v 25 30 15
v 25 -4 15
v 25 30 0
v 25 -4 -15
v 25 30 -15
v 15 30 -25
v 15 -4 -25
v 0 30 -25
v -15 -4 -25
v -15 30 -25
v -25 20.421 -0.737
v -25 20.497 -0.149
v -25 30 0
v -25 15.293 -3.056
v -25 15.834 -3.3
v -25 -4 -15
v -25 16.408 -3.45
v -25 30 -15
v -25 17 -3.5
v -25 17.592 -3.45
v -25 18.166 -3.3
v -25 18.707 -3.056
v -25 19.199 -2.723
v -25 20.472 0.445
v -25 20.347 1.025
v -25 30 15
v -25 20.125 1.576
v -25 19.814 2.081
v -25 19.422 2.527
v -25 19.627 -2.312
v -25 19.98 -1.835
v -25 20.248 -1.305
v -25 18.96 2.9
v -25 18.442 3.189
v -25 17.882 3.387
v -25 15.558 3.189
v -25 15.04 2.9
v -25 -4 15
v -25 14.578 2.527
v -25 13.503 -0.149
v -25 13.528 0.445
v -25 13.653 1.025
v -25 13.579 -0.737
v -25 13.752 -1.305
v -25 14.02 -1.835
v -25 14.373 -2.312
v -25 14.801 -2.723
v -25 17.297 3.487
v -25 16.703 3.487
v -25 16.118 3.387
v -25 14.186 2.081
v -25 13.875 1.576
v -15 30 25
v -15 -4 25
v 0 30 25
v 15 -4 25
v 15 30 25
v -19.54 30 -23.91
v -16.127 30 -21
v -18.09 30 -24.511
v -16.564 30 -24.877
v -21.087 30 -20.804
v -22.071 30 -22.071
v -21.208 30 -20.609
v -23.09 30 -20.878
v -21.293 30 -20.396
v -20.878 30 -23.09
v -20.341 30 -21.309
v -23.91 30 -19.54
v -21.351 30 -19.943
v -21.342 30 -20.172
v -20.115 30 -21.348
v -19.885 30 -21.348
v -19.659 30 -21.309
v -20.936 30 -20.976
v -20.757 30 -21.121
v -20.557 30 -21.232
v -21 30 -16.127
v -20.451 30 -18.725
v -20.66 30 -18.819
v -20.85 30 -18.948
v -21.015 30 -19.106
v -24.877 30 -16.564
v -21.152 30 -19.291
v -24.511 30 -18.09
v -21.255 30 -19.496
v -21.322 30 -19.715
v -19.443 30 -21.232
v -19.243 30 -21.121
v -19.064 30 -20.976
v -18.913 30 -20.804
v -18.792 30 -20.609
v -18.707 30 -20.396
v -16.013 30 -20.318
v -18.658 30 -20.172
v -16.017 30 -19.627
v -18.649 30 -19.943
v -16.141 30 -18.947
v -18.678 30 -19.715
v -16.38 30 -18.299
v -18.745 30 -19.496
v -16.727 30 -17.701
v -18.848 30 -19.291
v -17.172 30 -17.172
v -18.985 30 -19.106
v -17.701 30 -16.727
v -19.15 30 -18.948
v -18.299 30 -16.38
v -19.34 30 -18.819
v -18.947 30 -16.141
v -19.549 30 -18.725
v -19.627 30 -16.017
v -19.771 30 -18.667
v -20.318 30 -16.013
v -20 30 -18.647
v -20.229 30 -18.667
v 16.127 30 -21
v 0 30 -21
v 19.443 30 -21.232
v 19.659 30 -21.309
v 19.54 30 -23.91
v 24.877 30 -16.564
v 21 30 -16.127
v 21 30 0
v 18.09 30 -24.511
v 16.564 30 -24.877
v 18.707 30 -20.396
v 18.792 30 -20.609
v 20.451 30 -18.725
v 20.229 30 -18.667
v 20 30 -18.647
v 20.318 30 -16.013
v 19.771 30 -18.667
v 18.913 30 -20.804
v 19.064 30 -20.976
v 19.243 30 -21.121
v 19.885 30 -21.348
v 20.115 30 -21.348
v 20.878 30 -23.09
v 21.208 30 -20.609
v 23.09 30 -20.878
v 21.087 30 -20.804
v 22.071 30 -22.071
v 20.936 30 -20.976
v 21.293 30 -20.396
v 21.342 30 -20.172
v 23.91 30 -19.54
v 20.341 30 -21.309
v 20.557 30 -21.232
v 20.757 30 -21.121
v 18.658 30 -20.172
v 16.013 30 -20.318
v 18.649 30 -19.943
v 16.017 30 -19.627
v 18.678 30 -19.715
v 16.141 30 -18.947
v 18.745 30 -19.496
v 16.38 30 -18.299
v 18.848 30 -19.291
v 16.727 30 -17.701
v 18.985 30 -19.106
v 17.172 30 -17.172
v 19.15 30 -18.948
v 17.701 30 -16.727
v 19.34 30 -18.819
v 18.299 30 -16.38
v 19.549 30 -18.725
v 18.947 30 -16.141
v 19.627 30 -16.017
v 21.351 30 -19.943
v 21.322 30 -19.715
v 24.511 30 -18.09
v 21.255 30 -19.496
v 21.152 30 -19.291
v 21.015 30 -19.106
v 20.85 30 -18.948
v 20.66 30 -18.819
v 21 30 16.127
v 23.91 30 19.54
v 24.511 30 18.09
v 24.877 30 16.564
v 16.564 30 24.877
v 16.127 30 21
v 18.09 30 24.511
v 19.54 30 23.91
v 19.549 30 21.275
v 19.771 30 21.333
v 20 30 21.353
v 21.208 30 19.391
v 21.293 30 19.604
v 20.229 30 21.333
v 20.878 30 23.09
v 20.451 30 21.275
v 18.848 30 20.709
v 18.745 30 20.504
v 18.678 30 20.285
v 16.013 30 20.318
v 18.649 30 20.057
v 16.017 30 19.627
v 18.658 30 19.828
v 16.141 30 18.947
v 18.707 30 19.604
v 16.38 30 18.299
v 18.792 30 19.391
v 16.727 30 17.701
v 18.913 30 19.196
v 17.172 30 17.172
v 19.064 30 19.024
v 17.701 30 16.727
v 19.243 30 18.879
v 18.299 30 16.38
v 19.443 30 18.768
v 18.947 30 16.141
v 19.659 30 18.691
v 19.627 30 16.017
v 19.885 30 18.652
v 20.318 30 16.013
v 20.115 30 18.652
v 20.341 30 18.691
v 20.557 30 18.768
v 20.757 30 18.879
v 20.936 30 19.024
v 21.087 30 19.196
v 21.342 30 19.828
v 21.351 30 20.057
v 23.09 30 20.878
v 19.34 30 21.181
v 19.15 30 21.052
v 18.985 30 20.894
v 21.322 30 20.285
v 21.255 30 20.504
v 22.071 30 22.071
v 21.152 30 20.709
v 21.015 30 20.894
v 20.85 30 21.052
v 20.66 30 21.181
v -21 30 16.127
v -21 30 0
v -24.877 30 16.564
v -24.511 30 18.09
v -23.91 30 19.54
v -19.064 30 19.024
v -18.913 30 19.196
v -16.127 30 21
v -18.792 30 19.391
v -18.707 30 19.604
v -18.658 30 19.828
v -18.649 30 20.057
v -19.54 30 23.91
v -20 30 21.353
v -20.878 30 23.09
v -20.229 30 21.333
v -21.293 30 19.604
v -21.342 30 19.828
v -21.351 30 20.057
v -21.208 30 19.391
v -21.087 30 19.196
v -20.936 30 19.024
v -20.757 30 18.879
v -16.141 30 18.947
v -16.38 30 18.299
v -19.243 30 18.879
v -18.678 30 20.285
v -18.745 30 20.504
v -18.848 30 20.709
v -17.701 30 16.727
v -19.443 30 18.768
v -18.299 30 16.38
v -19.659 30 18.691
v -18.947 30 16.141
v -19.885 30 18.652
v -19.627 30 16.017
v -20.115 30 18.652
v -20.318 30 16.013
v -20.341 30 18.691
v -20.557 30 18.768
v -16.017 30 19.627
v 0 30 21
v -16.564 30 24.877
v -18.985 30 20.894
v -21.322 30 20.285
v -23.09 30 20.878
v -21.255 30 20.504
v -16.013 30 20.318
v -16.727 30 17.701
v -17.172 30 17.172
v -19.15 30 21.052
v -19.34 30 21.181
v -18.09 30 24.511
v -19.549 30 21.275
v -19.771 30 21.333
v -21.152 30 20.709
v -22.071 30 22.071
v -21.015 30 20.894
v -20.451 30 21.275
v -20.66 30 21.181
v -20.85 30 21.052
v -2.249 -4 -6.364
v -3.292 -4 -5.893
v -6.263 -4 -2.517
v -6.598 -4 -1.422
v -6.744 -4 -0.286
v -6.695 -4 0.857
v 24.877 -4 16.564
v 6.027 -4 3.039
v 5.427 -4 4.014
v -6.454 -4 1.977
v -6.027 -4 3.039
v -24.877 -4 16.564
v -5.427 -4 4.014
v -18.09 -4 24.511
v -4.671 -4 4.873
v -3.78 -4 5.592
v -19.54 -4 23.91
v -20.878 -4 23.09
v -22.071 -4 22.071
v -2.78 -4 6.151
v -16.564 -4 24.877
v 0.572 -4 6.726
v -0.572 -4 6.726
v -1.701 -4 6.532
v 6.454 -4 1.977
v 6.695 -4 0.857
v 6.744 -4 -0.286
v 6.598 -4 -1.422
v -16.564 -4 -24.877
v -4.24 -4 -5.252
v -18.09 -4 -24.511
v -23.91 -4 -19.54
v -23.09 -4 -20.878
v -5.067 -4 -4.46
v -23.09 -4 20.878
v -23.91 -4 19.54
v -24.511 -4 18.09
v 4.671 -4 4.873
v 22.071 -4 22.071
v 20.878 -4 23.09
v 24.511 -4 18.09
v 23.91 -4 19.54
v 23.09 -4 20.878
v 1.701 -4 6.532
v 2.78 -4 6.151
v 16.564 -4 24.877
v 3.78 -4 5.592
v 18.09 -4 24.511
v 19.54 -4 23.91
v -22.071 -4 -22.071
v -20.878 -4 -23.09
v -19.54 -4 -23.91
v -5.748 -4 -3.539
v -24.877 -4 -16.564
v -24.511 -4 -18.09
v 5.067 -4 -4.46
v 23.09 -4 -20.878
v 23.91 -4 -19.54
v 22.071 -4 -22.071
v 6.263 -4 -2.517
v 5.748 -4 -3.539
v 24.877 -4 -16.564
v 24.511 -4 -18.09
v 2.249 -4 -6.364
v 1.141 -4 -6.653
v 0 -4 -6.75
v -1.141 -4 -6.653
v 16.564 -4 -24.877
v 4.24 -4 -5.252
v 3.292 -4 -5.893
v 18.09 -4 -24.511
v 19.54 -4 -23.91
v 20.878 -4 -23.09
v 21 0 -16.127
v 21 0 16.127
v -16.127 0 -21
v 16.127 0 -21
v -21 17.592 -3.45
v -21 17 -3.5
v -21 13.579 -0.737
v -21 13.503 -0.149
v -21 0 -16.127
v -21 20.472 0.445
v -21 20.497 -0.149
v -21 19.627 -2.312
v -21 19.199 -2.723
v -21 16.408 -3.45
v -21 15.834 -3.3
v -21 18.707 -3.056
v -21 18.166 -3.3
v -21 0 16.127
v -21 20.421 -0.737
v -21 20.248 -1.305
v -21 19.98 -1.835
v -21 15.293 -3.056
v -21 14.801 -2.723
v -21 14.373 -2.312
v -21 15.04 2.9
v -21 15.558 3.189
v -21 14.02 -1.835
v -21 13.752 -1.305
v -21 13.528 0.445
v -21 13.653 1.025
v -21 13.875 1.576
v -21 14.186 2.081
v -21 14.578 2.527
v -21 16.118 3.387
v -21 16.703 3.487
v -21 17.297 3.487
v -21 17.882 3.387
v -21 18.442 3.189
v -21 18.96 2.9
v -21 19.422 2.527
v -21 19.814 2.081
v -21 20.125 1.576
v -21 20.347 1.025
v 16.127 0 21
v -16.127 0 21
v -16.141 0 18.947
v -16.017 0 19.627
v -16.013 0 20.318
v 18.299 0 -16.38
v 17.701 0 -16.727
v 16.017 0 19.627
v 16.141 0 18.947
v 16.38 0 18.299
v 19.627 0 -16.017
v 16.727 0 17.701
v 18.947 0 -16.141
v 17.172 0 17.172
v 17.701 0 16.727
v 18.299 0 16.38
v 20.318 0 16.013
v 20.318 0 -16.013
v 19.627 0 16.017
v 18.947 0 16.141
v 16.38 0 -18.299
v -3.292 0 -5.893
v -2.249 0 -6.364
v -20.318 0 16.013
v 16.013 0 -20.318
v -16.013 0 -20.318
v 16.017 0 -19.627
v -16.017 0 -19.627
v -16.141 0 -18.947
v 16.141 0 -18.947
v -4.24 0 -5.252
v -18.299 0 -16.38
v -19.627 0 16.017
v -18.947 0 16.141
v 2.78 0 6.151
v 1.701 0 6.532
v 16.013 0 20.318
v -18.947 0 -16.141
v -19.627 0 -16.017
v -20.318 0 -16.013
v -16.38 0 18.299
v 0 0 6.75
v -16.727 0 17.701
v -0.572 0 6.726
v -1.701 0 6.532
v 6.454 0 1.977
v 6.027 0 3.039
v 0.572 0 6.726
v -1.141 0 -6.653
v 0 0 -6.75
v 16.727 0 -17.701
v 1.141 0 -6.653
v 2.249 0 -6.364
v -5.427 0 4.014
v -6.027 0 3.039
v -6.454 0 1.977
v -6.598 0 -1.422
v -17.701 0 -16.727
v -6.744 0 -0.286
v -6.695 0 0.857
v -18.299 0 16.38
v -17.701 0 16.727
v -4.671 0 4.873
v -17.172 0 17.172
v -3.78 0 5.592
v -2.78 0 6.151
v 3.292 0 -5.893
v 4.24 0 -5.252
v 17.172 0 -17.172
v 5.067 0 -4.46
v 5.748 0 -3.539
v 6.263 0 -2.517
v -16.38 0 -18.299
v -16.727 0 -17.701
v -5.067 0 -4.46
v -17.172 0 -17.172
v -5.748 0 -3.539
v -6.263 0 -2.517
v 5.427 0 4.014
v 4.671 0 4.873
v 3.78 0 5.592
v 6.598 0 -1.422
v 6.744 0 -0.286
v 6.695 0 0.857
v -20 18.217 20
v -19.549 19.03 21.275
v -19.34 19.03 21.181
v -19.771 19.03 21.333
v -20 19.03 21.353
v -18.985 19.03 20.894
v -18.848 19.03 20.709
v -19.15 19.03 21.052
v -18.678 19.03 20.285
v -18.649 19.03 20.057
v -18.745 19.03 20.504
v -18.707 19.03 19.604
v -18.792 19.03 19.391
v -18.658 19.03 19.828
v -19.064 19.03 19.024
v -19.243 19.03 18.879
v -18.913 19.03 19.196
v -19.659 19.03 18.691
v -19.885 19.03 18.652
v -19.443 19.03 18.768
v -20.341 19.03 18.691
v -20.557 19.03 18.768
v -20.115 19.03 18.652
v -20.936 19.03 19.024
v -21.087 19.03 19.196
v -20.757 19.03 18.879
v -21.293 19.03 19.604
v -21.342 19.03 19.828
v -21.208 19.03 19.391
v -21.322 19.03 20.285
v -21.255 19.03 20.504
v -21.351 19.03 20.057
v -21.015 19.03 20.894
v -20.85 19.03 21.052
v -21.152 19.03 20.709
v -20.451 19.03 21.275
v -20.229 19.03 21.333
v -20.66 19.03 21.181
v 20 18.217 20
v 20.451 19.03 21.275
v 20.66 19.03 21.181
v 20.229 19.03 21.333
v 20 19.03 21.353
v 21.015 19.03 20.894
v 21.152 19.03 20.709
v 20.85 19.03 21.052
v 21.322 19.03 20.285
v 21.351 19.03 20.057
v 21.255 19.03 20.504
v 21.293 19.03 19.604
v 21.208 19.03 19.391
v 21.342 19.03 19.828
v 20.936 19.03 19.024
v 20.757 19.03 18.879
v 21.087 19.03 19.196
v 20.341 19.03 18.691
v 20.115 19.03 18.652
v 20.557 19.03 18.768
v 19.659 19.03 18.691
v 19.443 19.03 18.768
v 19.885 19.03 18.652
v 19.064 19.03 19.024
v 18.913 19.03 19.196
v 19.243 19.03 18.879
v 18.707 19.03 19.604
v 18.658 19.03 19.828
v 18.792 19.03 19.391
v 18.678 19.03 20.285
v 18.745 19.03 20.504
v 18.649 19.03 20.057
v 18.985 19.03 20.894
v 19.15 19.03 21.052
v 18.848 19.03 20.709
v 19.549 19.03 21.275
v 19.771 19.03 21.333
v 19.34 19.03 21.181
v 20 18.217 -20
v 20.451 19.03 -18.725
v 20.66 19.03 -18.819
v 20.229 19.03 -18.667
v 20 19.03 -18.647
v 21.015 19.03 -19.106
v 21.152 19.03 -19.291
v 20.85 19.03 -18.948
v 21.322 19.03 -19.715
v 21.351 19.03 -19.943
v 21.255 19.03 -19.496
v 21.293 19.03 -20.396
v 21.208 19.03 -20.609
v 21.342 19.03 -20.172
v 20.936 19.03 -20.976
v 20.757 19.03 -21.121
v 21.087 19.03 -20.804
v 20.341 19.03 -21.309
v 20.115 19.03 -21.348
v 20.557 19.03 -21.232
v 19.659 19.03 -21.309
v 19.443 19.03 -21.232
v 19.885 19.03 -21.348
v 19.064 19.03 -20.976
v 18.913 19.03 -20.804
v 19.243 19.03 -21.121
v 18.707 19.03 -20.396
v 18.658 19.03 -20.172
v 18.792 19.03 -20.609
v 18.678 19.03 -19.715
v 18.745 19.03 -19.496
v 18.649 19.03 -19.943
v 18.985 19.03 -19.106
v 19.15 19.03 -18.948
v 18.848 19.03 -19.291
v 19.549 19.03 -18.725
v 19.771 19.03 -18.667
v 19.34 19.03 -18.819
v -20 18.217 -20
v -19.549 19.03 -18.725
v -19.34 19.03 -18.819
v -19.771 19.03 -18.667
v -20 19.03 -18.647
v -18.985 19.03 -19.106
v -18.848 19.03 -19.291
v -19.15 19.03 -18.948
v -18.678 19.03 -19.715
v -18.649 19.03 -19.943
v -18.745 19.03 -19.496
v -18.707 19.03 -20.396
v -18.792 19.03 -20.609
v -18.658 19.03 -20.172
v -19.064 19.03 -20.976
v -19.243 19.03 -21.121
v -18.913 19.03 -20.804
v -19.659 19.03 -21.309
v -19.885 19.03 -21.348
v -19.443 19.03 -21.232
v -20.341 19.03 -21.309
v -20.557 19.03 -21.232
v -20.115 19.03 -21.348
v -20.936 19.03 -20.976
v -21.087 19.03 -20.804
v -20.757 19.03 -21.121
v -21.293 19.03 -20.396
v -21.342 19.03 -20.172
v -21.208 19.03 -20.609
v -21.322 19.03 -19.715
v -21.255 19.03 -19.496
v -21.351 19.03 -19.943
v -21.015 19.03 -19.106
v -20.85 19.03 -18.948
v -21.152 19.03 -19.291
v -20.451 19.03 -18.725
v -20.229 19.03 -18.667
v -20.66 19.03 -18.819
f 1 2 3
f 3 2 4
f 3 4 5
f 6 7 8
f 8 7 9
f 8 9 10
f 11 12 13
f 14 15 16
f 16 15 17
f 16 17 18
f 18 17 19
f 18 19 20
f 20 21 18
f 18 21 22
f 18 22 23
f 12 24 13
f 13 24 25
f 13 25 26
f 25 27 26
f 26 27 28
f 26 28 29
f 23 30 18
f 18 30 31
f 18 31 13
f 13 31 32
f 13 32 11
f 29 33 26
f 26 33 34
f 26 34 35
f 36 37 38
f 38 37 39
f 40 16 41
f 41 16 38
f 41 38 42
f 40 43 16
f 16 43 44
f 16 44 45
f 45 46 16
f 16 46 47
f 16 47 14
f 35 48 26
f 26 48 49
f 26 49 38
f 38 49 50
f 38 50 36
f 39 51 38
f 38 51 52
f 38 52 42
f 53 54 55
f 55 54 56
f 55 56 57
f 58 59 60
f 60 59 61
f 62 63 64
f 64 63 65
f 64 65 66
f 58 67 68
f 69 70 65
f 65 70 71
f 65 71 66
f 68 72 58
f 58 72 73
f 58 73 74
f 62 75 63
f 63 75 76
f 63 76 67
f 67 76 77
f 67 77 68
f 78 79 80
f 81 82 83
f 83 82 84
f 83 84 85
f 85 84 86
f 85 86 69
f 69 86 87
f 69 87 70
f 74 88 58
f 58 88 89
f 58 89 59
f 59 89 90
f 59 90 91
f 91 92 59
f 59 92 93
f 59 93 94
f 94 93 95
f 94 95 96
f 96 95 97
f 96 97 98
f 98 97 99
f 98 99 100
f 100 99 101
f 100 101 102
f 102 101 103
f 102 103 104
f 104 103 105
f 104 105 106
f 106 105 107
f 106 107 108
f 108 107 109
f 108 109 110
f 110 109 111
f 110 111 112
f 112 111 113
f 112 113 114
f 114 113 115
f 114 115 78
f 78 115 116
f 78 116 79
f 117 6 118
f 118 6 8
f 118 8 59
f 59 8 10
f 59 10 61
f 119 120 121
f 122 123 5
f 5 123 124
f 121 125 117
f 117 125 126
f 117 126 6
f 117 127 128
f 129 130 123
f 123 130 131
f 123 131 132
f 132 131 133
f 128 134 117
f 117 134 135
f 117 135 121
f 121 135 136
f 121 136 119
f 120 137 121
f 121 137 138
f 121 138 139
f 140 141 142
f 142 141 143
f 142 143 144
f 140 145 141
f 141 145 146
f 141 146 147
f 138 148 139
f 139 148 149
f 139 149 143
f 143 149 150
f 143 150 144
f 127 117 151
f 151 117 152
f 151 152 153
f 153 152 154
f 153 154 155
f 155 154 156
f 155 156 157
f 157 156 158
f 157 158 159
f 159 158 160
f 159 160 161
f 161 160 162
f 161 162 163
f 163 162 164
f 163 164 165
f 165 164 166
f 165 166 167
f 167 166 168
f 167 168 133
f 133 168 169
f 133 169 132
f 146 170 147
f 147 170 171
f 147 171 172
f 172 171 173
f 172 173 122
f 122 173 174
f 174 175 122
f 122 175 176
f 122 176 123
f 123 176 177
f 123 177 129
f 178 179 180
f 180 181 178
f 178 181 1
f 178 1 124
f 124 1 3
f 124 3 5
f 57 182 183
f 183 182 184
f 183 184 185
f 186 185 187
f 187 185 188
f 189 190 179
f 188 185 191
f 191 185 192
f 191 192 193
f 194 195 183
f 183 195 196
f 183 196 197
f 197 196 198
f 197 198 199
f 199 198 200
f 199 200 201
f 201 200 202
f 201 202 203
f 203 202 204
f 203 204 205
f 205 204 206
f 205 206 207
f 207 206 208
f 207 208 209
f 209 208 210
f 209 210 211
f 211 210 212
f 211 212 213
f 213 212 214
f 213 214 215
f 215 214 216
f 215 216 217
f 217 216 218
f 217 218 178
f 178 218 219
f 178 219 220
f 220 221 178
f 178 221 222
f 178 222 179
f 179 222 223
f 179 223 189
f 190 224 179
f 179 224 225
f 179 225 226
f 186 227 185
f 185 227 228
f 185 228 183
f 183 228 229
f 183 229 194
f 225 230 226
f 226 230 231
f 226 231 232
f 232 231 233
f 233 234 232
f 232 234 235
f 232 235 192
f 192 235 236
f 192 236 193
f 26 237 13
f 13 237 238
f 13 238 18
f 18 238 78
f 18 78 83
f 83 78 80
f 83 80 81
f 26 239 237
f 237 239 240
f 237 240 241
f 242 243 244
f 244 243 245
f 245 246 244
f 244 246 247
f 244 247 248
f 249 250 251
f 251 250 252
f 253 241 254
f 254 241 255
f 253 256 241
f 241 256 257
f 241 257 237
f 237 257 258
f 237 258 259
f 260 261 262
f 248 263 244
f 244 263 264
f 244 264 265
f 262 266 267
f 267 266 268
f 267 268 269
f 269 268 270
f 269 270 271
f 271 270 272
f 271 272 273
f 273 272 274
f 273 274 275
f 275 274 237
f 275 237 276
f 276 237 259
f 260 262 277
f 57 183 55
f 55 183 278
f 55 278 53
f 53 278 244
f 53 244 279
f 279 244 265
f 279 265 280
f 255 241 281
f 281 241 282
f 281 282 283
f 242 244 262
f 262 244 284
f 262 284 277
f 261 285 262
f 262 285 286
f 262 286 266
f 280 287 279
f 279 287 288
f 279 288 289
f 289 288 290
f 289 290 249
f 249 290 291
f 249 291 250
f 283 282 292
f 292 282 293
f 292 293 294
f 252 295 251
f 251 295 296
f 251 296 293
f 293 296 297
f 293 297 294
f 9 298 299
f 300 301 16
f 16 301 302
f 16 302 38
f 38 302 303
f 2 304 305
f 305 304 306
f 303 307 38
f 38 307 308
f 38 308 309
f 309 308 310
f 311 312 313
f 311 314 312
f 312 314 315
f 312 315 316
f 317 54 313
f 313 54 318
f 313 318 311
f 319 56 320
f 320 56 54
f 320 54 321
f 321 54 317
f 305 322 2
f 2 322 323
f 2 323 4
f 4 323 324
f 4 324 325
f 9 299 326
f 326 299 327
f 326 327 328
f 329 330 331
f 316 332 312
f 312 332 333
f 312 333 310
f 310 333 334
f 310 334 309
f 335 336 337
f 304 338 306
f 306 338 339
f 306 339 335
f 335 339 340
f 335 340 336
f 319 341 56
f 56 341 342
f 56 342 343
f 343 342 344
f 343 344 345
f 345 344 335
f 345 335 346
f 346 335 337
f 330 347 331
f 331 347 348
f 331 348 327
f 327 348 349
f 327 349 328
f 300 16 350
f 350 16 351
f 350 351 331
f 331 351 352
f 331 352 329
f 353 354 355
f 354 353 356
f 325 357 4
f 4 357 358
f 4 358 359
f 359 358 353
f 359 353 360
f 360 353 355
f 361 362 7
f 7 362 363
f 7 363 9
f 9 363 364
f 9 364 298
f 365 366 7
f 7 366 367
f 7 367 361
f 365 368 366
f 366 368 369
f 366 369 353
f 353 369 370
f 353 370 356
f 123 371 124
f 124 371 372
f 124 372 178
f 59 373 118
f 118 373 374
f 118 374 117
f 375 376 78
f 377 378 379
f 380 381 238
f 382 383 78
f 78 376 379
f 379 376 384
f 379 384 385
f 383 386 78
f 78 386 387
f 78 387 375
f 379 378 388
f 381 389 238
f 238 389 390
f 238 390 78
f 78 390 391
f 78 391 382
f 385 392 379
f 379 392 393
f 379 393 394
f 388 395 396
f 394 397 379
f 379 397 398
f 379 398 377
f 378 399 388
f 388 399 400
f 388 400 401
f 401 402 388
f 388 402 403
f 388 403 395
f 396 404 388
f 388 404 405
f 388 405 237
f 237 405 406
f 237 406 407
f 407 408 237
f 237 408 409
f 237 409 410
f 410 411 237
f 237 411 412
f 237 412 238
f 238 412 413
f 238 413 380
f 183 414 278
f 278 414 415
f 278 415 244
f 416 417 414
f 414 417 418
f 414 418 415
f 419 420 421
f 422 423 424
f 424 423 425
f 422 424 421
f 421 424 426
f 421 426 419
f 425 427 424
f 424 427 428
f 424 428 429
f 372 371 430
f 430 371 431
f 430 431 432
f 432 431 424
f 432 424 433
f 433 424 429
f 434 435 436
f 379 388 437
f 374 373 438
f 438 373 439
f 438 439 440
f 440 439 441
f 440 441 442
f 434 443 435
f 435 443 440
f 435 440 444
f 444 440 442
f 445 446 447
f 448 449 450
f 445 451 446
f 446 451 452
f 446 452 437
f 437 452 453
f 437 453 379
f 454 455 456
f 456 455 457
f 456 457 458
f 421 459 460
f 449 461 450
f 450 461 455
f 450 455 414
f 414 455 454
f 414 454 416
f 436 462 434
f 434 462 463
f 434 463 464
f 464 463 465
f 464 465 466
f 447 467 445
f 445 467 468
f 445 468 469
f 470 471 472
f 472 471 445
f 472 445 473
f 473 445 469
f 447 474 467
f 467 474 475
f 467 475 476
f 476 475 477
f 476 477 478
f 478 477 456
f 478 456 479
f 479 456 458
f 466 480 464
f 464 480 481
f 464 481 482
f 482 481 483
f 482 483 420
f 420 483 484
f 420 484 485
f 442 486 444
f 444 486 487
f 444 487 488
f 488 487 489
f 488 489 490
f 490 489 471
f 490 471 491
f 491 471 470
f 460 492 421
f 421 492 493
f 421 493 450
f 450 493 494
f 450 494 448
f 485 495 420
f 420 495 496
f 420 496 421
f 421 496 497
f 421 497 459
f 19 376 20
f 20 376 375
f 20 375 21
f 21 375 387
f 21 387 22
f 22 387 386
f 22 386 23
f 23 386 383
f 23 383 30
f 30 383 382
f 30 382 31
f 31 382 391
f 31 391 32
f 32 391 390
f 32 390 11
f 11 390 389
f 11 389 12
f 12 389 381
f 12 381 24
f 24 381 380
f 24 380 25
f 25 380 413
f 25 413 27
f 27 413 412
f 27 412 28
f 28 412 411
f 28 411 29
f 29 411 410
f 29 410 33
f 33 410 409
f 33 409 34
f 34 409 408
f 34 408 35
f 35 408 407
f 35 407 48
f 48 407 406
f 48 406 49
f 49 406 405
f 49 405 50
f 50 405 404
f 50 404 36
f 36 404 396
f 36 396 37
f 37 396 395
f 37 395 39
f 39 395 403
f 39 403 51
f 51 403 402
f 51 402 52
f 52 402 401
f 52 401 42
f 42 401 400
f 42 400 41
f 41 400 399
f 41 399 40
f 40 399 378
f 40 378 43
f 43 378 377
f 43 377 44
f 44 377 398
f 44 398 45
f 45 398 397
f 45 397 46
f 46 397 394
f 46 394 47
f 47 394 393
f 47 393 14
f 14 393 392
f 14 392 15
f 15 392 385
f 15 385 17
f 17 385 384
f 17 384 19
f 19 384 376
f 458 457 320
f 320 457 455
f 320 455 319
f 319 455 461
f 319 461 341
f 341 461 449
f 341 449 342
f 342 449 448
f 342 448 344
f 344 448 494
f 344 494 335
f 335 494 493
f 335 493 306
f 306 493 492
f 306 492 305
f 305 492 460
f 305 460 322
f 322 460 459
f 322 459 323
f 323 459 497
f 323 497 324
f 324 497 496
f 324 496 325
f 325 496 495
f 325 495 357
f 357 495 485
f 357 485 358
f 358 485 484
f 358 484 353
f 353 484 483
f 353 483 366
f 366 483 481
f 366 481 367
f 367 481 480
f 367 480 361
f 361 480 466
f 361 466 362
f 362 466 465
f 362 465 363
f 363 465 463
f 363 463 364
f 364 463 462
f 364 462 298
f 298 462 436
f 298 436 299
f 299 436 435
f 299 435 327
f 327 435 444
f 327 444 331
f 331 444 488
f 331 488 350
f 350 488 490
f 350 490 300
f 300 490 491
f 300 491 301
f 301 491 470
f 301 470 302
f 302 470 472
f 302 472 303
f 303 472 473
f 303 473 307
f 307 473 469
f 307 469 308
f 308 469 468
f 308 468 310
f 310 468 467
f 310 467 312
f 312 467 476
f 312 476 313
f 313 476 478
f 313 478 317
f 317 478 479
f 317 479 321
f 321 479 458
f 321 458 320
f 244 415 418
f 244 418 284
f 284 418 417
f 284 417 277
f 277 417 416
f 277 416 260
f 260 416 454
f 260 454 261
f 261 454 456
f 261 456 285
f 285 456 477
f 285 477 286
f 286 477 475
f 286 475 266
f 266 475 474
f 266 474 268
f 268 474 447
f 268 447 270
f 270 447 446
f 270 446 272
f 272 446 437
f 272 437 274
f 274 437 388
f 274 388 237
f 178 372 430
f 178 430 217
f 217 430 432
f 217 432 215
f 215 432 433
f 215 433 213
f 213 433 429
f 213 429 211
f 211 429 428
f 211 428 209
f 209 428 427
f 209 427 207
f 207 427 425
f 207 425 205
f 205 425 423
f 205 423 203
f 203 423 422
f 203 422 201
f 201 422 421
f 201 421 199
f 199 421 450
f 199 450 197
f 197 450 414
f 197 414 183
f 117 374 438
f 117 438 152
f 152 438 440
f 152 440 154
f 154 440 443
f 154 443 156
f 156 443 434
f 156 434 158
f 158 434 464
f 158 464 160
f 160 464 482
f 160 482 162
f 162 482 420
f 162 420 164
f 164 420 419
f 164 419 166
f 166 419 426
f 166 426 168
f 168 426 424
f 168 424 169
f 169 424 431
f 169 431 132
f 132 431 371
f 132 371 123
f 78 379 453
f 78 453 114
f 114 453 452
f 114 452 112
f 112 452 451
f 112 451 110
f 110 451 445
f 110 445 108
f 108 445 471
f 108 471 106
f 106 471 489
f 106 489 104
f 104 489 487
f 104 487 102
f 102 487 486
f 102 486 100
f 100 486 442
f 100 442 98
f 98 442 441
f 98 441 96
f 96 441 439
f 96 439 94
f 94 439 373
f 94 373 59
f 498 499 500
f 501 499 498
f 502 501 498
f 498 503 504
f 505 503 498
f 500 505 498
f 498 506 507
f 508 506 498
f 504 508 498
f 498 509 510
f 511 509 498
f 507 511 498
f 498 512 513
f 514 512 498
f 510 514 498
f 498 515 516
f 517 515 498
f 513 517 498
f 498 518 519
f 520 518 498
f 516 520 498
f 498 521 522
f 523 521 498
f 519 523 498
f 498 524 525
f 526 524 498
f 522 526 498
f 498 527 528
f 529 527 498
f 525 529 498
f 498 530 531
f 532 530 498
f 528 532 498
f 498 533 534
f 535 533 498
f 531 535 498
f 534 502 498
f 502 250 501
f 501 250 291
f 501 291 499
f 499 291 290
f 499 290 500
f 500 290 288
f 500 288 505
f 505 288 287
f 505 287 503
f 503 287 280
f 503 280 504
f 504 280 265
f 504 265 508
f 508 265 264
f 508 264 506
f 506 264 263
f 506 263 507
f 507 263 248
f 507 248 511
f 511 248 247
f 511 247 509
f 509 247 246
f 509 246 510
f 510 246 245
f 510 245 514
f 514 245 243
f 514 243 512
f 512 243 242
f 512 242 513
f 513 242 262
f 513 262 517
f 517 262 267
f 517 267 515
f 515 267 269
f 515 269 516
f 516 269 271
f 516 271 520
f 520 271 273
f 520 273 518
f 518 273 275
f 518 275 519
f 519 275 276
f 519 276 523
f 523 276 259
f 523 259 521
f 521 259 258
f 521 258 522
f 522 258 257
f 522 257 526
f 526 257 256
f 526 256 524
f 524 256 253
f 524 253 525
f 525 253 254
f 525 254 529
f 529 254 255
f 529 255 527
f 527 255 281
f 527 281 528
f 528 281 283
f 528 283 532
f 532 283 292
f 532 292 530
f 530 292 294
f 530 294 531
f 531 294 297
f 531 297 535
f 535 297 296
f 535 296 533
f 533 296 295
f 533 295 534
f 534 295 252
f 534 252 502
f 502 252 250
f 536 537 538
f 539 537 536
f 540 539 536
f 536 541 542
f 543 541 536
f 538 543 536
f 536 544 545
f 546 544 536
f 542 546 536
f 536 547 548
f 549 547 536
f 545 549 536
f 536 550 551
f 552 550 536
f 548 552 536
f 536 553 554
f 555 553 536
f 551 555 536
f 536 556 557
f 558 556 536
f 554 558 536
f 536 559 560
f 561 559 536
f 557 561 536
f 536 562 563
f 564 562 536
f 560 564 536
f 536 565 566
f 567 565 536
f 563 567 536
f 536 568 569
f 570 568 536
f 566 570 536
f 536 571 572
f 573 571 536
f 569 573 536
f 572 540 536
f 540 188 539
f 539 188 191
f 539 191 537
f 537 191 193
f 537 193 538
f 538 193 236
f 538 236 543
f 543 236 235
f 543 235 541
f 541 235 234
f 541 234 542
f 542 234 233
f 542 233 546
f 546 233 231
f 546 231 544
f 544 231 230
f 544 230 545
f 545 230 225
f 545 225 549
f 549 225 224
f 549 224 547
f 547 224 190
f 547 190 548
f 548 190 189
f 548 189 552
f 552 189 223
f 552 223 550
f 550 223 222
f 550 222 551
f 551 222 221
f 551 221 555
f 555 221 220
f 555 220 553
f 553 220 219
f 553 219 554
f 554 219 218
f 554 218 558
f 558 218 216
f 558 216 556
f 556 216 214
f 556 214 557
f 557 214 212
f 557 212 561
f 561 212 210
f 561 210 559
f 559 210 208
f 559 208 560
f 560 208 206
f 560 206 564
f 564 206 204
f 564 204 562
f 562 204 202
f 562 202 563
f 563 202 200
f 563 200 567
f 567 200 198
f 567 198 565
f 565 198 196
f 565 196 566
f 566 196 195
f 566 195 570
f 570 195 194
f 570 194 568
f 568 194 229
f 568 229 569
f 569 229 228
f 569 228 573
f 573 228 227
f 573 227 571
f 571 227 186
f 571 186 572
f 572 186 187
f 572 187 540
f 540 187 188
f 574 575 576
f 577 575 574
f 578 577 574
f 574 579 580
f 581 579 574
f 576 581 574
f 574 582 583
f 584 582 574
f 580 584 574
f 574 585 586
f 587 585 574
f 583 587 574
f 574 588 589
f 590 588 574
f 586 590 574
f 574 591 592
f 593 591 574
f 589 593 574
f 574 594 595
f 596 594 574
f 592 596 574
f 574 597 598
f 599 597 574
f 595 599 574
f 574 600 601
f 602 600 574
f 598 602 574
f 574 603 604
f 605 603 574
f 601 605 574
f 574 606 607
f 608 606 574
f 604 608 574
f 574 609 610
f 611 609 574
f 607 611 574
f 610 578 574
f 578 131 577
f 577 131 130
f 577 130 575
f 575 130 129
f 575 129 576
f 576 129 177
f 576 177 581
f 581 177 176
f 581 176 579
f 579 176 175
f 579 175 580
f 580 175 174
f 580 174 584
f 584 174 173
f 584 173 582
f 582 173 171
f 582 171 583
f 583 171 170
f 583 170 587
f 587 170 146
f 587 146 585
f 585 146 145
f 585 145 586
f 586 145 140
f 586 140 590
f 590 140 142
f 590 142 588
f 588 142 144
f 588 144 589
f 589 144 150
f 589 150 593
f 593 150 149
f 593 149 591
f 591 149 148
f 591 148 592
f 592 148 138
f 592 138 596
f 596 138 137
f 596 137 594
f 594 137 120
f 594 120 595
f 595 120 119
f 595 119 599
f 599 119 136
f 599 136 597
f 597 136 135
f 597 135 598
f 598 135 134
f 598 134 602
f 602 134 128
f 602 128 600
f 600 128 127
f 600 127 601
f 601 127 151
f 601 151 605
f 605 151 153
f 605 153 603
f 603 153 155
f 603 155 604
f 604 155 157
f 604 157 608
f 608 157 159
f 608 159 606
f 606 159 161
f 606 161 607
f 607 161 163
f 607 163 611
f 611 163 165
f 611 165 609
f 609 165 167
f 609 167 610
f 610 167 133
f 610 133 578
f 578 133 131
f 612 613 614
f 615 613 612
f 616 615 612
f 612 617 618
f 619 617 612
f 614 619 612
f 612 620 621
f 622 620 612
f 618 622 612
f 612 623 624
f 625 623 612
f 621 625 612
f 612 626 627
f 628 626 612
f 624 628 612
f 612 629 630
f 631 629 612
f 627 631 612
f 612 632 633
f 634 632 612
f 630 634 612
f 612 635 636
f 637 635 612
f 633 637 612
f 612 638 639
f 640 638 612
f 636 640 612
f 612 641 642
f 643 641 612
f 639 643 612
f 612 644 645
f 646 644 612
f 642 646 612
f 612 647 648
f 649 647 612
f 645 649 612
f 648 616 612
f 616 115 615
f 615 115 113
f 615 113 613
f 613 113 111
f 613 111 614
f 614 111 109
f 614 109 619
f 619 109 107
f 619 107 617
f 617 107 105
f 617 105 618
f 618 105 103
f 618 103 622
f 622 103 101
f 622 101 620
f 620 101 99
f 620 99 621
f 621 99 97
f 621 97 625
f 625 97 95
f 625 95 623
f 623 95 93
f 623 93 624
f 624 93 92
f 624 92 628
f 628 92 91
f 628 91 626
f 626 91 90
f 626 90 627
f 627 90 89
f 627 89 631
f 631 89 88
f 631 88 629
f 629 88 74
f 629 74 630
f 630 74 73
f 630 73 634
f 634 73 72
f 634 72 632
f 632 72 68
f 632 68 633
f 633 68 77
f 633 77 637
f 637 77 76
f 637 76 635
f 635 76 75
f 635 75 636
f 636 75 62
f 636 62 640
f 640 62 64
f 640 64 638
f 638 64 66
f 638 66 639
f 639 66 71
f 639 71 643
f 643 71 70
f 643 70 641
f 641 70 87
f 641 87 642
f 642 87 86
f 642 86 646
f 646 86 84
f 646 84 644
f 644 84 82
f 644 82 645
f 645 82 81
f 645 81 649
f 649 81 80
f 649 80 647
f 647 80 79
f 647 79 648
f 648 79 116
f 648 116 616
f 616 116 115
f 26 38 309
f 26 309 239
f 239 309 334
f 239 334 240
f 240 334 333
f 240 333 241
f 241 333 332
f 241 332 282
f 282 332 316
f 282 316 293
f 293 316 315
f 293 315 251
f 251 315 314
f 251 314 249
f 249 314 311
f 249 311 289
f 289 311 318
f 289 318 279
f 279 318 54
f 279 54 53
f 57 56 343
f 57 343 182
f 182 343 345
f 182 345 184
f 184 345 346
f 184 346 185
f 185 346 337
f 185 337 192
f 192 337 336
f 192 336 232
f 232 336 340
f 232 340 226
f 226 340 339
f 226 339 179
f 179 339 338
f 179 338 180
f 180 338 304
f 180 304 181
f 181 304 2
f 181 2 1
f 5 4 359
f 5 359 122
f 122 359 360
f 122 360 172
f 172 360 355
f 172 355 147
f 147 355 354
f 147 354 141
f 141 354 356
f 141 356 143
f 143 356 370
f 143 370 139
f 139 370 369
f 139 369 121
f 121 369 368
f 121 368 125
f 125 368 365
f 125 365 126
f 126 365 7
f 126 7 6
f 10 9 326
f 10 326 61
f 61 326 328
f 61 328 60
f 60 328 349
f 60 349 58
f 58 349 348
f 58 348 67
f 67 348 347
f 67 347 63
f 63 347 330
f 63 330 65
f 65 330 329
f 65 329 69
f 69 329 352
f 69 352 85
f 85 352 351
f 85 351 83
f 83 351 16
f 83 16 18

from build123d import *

# Parameters (mm, degrees)
SKETCH1_W                 = 42
SKETCH1_H                 = 42
BOSS_EXTRUDE2_DEPTH       = 30
SHELL1_T                  = 4
SKETCH3_R                 = 3.5
CUT_EXTRUDE1_DEPTH        = 30
SKETCH2_R                 = 6.75
CUT_EXTRUDE2_DEPTH        = 30
SKETCH5_R                 = 4
BOSS_EXTRUDE3_DEPTH       = 34
F_6_32_TAPPED_HOLE6_D     = 2.7051
F_6_32_TAPPED_HOLE6_DEPTH = 10.97
F_6_32_TAPPED_HOLE6_TIP   = 0.81269403
FILLET3_R                 = 10


with BuildPart() as part:
    # Sketch1 → Boss-Extrude2 (new body)
    with BuildSketch(Plane(origin=(0, 0, 0), x_dir=(1, 0, 0), z_dir=(0, 1, 0))):
        Rectangle(SKETCH1_W, SKETCH1_H)
    extrude(amount=BOSS_EXTRUDE2_DEPTH)

    # Shell1
    shell1_openings = [part.faces().sort_by_distance(p)[0] for p in [
        (0, 30, 0),
    ]]
    offset(amount=SHELL1_T, openings=shell1_openings, kind=Kind.INTERSECTION)

    # Sketch3 → Cut-Extrude1 (cut)
    with BuildSketch(Plane(origin=(0, 0, 0), x_dir=(0, 0, -1), z_dir=(1, 0, 0))):
        with Locations((0, 17)):
            Circle(SKETCH3_R)
    extrude(amount=-CUT_EXTRUDE1_DEPTH, mode=Mode.SUBTRACT)

    # Sketch2 → Cut-Extrude2 (cut)
    with BuildSketch(Plane(origin=(0, -4, 0), x_dir=(-1, 0, 0), z_dir=(0, -1, 0))):
        with Locations(Location((0, 0, 0), (0, 0, 90))):
            Circle(SKETCH2_R)
    extrude(amount=-CUT_EXTRUDE2_DEPTH, mode=Mode.SUBTRACT)

    # Sketch5 → Boss-Extrude3 (add)
    with BuildSketch(Plane(origin=(0, -4, 0), x_dir=(-1, 0, 0), z_dir=(0, -1, 0))):
        with Locations((20, -20)):
            Circle(SKETCH5_R)
        with Locations((-20, -20)):
            Circle(SKETCH5_R)
        with Locations((-20, 20)):
            Circle(SKETCH5_R)
        with Locations((20, 20)):
            Circle(SKETCH5_R)
    extrude(amount=-BOSS_EXTRUDE3_DEPTH)

    # #6-32 Tapped Hole6
    with Locations(Plane(origin=(-20, 30, -20), x_dir=(0, 0, 1), z_dir=(0, 1, 0))):
        with Locations((0, 0), (0, 40), (40, 40), (40, 0)):
            Hole(F_6_32_TAPPED_HOLE6_D / 2, depth=F_6_32_TAPPED_HOLE6_DEPTH)
            with Locations((0, 0, -(F_6_32_TAPPED_HOLE6_DEPTH + F_6_32_TAPPED_HOLE6_TIP / 2))):  # 118° drill point
                Cone(0, F_6_32_TAPPED_HOLE6_D / 2, F_6_32_TAPPED_HOLE6_TIP, mode=Mode.SUBTRACT)

    # Fillet3
    fillet3_edges = [part.edges().sort_by_distance(p)[0] for p in [
        (25, 13, 25),
        (-25, 13, 25),
        (-25, 13, -25),
        (25, 13, -25),
    ]]
    fillet(fillet3_edges, radius=FILLET3_R)


solid = part.part
